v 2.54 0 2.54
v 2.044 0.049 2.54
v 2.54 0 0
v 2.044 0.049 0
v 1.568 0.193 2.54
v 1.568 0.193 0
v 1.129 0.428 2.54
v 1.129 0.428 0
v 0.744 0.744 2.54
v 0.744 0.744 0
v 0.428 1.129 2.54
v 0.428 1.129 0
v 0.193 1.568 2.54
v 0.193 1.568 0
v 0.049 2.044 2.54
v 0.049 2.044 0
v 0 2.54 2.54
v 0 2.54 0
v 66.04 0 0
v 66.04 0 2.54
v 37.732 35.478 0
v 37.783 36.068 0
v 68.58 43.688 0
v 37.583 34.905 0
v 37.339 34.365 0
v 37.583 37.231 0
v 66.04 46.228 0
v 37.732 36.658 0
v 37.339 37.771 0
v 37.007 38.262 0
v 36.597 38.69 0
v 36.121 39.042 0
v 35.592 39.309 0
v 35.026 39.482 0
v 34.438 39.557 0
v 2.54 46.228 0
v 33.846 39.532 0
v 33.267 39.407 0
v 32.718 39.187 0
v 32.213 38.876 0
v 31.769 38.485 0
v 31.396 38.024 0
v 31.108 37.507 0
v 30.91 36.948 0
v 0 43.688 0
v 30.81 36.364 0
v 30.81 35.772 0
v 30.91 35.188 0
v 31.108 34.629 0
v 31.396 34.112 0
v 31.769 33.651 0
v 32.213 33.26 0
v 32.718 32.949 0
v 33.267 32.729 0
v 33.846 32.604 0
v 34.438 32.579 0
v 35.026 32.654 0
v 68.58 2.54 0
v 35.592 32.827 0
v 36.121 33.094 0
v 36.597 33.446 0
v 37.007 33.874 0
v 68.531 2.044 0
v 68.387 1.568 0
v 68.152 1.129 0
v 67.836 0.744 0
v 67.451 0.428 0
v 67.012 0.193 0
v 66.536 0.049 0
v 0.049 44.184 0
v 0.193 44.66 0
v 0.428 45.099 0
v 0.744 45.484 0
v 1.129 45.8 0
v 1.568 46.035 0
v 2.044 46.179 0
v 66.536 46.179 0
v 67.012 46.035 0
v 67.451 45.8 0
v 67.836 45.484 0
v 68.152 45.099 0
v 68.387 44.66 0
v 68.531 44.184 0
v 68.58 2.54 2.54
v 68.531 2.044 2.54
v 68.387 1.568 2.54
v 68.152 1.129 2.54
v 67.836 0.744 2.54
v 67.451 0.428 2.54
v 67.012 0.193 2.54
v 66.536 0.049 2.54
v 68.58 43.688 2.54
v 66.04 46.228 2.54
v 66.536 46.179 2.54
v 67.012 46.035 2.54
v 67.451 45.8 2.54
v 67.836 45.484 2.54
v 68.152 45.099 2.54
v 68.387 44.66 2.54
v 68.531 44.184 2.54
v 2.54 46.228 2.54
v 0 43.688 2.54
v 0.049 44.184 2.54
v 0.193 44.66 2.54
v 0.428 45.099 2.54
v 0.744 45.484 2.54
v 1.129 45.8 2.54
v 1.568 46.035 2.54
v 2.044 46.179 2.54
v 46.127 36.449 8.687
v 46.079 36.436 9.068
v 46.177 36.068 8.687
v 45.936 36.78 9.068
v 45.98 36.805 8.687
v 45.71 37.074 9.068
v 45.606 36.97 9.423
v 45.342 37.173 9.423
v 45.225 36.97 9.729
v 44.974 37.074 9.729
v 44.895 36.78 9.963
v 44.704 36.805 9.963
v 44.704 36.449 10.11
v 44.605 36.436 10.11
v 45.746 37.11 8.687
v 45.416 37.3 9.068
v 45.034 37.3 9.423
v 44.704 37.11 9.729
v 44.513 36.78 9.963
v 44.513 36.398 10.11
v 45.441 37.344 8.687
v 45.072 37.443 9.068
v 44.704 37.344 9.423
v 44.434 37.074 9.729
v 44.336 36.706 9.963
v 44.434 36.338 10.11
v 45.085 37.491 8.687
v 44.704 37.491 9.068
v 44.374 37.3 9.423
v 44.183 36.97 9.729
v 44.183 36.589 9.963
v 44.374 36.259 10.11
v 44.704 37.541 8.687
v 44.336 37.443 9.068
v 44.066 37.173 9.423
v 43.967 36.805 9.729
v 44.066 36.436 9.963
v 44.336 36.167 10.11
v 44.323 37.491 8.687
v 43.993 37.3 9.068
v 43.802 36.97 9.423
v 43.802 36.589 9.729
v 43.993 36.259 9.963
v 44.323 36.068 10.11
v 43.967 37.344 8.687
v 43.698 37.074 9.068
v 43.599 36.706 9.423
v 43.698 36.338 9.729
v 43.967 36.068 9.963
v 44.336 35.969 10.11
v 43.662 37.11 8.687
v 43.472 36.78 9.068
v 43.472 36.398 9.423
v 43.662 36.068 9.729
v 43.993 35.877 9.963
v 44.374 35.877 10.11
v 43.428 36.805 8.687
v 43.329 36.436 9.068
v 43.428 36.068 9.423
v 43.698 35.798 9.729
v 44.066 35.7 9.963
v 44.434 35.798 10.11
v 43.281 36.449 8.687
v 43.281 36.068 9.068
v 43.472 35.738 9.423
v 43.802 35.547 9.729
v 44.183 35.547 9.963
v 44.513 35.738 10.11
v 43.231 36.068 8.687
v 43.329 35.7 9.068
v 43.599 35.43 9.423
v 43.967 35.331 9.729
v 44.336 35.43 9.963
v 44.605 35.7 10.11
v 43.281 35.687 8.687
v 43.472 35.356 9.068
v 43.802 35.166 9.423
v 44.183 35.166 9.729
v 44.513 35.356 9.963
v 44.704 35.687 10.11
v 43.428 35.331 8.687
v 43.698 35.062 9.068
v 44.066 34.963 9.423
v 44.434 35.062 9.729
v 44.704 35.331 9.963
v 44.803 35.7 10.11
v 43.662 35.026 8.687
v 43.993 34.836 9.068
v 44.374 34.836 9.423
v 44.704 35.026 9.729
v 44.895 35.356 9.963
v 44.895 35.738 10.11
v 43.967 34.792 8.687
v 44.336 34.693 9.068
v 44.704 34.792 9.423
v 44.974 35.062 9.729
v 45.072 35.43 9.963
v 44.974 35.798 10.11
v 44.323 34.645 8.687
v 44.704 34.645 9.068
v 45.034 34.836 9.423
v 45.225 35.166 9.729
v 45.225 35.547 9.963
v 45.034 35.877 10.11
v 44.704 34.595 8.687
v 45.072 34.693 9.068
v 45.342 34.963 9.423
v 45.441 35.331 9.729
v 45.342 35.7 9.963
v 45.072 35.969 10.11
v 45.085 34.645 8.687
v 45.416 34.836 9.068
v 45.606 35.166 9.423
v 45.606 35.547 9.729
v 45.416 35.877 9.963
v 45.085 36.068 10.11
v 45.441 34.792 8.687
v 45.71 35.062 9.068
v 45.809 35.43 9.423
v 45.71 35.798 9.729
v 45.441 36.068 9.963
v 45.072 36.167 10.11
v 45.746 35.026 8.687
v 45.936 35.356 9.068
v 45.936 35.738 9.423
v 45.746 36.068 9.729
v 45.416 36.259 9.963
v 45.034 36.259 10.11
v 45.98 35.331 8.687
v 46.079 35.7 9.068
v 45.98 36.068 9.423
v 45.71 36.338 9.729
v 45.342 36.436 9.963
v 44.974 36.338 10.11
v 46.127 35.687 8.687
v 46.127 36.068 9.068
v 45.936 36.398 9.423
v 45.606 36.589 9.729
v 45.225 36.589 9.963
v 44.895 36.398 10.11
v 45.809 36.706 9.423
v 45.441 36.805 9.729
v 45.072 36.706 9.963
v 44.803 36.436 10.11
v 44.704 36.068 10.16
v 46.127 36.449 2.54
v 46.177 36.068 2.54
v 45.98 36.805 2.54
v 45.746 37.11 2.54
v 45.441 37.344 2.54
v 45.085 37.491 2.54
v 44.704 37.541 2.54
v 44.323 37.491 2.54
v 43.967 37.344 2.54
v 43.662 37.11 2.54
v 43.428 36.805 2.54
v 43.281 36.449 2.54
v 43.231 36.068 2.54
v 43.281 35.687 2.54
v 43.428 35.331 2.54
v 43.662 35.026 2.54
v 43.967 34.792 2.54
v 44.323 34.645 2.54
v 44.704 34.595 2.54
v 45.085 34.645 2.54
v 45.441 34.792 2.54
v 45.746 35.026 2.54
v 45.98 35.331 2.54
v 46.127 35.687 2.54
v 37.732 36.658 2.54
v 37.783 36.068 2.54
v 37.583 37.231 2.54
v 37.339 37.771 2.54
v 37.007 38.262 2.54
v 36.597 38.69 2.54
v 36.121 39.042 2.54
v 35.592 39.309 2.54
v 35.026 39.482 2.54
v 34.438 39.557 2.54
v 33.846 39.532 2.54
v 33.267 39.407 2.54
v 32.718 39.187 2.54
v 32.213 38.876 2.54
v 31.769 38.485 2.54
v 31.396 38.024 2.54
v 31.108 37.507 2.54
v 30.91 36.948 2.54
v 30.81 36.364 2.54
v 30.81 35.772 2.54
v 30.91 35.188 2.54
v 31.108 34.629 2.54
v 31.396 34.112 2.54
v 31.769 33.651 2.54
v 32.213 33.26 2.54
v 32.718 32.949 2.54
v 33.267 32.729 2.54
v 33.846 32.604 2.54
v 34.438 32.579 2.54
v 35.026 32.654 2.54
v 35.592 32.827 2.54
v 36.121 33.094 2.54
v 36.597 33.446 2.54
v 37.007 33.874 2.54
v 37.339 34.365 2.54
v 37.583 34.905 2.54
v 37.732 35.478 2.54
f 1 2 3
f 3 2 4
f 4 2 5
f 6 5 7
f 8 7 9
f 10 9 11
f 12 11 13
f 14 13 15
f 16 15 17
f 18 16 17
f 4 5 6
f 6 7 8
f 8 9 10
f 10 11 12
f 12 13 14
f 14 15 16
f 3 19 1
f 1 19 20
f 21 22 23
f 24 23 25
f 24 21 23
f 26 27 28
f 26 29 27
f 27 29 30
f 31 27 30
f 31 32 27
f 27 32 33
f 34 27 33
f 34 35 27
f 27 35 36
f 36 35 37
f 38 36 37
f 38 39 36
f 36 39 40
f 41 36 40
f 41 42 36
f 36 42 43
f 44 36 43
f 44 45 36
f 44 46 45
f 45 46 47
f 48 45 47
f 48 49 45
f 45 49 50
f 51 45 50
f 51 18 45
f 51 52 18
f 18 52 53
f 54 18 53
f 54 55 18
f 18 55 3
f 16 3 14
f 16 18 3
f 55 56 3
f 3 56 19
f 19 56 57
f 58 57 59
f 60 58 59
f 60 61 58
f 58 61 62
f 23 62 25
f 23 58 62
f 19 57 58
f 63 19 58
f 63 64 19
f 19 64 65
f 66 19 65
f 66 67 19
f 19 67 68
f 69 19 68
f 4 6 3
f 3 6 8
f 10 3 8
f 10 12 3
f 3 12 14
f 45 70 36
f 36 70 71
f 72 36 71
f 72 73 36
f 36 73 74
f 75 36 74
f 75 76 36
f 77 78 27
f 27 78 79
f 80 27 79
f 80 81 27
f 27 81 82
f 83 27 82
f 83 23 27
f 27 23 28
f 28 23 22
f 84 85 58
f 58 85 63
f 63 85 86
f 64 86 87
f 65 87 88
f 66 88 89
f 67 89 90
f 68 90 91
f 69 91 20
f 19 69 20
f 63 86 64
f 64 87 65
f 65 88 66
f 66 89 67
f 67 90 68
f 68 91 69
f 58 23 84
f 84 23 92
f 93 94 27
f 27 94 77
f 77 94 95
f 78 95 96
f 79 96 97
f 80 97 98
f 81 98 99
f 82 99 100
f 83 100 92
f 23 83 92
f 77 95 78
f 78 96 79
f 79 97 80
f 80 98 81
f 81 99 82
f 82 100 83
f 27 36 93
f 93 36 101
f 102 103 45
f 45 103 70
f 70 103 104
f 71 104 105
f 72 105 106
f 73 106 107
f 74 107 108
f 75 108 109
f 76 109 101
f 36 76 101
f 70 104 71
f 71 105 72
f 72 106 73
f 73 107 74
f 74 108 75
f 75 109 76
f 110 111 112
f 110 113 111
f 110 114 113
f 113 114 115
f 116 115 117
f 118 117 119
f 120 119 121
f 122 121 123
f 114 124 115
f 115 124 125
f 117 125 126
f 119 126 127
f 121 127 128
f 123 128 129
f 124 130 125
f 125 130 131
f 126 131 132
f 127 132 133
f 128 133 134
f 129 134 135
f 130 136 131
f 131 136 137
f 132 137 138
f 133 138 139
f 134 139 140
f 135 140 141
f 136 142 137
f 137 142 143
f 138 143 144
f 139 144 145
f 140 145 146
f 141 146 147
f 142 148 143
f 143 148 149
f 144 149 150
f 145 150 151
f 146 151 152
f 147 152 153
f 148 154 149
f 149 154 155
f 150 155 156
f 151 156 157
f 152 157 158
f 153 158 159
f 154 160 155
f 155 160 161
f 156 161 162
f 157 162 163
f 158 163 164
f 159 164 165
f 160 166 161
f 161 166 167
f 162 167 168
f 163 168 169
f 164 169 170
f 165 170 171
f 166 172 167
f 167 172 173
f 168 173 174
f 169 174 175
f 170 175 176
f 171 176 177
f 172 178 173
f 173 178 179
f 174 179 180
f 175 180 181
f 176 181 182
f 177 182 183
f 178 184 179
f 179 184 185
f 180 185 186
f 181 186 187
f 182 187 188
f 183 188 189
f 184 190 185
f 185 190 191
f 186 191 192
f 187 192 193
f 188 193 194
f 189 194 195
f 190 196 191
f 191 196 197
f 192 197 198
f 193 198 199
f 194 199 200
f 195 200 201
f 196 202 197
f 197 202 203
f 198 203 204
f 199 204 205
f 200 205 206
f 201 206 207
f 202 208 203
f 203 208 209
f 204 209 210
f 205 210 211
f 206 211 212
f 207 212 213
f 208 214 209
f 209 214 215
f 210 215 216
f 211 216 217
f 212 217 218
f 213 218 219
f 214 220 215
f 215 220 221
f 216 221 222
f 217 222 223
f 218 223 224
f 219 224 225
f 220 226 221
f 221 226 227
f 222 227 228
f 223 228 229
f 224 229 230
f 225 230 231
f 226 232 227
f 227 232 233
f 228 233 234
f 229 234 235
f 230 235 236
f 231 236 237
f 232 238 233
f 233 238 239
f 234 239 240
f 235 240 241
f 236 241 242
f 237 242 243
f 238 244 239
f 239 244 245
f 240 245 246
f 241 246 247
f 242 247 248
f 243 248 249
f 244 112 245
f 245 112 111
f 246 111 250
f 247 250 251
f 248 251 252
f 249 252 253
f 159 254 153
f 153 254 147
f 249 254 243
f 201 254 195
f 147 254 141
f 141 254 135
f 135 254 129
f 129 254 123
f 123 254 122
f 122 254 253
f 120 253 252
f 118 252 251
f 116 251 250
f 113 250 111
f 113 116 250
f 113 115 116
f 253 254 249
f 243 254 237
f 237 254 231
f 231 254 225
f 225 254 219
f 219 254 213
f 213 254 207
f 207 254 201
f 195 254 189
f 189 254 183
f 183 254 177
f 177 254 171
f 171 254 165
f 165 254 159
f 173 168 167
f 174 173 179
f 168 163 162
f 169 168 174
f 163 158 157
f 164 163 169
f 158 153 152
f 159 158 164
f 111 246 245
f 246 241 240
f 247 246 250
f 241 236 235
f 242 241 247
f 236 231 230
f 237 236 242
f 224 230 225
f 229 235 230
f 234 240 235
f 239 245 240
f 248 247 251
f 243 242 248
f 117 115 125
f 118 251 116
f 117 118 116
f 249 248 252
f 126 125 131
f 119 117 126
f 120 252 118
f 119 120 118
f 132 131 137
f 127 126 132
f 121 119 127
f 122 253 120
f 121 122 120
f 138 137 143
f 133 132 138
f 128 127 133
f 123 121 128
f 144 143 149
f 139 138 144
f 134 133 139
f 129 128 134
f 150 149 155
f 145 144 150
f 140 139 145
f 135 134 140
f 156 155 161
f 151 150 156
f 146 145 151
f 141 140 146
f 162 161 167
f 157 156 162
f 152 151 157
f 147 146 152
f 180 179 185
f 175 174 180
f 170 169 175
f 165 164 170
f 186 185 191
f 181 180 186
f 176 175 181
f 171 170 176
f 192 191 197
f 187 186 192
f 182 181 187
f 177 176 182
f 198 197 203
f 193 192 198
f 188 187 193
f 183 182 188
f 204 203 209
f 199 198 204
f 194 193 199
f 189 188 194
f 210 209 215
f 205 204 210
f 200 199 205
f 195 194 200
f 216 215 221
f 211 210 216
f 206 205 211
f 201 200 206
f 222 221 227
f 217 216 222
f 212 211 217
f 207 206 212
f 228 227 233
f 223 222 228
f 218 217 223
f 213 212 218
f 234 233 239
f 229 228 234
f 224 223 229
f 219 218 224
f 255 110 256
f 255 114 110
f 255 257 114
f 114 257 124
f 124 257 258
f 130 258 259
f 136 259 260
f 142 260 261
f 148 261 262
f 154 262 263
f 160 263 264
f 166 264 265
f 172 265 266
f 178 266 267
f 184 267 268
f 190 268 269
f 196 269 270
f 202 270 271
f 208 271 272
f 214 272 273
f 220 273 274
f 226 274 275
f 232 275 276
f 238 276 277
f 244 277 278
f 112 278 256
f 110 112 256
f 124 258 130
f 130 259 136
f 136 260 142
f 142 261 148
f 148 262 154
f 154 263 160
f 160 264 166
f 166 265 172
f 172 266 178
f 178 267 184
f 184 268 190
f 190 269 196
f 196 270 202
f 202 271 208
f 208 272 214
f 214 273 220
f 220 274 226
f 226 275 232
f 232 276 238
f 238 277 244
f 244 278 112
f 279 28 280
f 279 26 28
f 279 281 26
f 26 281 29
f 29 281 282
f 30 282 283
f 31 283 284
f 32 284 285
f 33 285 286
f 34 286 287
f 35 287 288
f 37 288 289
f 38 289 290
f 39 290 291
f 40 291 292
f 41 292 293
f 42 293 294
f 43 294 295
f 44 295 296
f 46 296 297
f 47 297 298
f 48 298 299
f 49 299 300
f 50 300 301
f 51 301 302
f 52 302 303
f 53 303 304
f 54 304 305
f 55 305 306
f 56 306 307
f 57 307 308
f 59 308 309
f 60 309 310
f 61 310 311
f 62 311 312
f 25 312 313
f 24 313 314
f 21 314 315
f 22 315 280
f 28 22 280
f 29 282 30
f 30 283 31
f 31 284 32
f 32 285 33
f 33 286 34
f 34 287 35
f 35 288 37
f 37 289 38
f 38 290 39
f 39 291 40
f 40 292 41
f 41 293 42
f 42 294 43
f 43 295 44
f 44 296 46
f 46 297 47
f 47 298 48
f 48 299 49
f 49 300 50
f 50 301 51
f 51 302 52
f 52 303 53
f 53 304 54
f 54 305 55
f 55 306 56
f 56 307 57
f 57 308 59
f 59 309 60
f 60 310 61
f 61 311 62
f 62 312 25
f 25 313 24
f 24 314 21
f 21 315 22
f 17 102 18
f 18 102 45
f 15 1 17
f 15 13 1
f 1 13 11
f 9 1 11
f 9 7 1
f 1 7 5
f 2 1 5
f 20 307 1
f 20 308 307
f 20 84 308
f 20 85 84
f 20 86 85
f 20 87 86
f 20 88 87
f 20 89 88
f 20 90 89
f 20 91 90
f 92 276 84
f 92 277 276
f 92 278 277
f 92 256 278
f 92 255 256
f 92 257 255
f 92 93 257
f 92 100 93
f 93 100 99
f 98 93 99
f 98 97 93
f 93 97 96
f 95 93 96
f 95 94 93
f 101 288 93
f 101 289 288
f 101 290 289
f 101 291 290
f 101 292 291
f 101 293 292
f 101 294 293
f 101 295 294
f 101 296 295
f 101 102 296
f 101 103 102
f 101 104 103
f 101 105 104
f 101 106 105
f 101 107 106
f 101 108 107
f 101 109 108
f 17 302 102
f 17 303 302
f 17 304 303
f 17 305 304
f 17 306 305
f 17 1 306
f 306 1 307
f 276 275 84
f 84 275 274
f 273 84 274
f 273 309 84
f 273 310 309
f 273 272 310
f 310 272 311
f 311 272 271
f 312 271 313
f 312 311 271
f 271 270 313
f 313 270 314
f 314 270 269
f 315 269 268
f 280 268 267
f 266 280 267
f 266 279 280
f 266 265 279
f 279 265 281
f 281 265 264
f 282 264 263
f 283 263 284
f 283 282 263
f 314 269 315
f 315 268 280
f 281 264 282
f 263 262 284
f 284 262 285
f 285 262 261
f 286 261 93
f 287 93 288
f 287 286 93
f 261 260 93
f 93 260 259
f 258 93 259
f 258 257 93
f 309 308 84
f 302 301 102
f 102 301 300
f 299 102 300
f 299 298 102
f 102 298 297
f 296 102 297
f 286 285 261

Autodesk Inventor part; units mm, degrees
ref_plane "YZ Plane" through (0, 0, 0) normal (1, 0, 0) x (0, 1, 0)
ref_plane "XZ Plane" through (0, 0, 0) normal (0, 1, 0) x (-1, 0, 0)
ref_plane "XY Plane" through (0, 0, 0) normal (0, 0, 1) x (1, 0, 0)
sketch "Sketch1" plane through (0, 0, 0) normal (0, 0, 1) x (1, 0, 0)
  line L0 (0, 0) -> (68.58, 0)
  line L1 (68.58, 0) -> (68.58, 46.228)
  line L2 (68.58, 46.228) -> (0, 46.228)
  line L3 (0, 46.228) -> (0, 0)
  dimension "d0" = 68.58
  dimension "d1" = 46.228
extrude "Extrusion1" add sketch "Sketch1" along normal blind 2.54
sketch "Sketch2" plane through (0, 0, 2.54) normal (0, 0, 1) x (1, 0, 0)
  line L0 (0, 46.228) -> (0, 0) projected
  line L1 (0, 46.228) -> (68.58, 46.228)
  line L2 (68.58, 46.228) -> (68.58, 0)
  line L3 (68.58, 0) -> (0, 0)
  line L4 (0, 0) -> (0, 46.228)
  line L5 (6.35, 43.688) -> (59.69, 43.688)
  line L6 (59.69, 43.688) -> (59.69, 28.448)
  line L7 (59.69, 28.448) -> (6.35, 28.448)
  line L8 (6.35, 28.448) -> (6.35, 43.688)
  line L9 (3.048, 28.448) -> (65.532, 28.448)
  line L10 (65.532, 28.448) -> (65.532, 3.048)
  line L11 (65.532, 3.048) -> (3.048, 3.048)
  line L12 (3.048, 3.048) -> (3.048, 28.448)
  dimension "d4" = 62.484
  dimension "d5" = 53.34
  dimension "d6" = 15.24
  dimension "d7" = 25.4
  dimension "d8" = 3.048
  dimension "d9" = 3.048
  dimension "d10" = 0
  dimension "d13" = 6.35
extrude "Extrusion2" [suppressed]
chamfer "Chamfer1" [suppressed]
chamfer "Chamfer2" [suppressed]
sketch "Sketch3" plane through (0, 0, 2.54) normal (0, 0, 1) x (1, 0, 0)
  circle A0 centre (34.29, 36.068) radius 3.4925
  line L0 (0, 0) -> (68.58, 0) projected
  line L1 (0, 46.228) -> (0, 0) projected
  line L2 (68.58, 46.228) -> (0, 46.228) projected
  line L3 (68.58, 0) -> (68.58, 46.228) projected
  dimension "d22" = 10.16
  dimension "d23" = 34.29
  dimension "d24" = 6.985
extrude "Extrusion3" cut sketch "Sketch3" against normal up to surface (2.54 mm away) contours A0
sketch "Sketch4" plane through (0, 0, 2.54) normal (0, 0, 1) x (1, 0, 0)
  line L0 (59.69, 28.448) -> (59.69, 43.688) projected
  line L1 (59.69, 43.688) -> (6.35, 43.688) projected
  circle A0 centre (44.704, 36.068) radius 1.4732
  point P0 (0, 0)
  dimension "d27" = 2.9464
  dimension "d28" = 7.62
  dimension "d29" = 14.986
extrude "Extrusion4" add sketch "Sketch4" along normal blind 7.62
fillet "Fillet1" radius 1.4732 1 edges at (43.2308, 36.068, 10.16)
fillet "Fillet2" radius 2.54 4 edges at (0, 46.228, 1.27) (68.58, 46.228, 1.27) (68.58, 0, 1.27) (0, 0, 1.27)
sketch "Sketch5" plane through (0, 0, 2.54) normal (0, 0, 1) x (1, 0, 0)
  circle A0 centre (34.29, 36.068) radius 3.4925 projected
  line L0 (26.67, 43.688) -> (41.91, 43.688)
  line L1 (41.91, 43.688) -> (41.91, 24.638)
  line L2 (41.91, 24.638) -> (26.67, 24.638)
  line L3 (26.67, 24.638) -> (26.67, 43.688)
  point P0 (0, 0)
  dimension "d34" = 19.05
  dimension "d35" = 15.24
  dimension "d36" = 7.62
  dimension "d37" = 7.62
extrude "Extrusion5" [suppressed]
hole "Hole1" [suppressed]
equation "\"d9\" = d8"
properties part number "Front_Plate"
